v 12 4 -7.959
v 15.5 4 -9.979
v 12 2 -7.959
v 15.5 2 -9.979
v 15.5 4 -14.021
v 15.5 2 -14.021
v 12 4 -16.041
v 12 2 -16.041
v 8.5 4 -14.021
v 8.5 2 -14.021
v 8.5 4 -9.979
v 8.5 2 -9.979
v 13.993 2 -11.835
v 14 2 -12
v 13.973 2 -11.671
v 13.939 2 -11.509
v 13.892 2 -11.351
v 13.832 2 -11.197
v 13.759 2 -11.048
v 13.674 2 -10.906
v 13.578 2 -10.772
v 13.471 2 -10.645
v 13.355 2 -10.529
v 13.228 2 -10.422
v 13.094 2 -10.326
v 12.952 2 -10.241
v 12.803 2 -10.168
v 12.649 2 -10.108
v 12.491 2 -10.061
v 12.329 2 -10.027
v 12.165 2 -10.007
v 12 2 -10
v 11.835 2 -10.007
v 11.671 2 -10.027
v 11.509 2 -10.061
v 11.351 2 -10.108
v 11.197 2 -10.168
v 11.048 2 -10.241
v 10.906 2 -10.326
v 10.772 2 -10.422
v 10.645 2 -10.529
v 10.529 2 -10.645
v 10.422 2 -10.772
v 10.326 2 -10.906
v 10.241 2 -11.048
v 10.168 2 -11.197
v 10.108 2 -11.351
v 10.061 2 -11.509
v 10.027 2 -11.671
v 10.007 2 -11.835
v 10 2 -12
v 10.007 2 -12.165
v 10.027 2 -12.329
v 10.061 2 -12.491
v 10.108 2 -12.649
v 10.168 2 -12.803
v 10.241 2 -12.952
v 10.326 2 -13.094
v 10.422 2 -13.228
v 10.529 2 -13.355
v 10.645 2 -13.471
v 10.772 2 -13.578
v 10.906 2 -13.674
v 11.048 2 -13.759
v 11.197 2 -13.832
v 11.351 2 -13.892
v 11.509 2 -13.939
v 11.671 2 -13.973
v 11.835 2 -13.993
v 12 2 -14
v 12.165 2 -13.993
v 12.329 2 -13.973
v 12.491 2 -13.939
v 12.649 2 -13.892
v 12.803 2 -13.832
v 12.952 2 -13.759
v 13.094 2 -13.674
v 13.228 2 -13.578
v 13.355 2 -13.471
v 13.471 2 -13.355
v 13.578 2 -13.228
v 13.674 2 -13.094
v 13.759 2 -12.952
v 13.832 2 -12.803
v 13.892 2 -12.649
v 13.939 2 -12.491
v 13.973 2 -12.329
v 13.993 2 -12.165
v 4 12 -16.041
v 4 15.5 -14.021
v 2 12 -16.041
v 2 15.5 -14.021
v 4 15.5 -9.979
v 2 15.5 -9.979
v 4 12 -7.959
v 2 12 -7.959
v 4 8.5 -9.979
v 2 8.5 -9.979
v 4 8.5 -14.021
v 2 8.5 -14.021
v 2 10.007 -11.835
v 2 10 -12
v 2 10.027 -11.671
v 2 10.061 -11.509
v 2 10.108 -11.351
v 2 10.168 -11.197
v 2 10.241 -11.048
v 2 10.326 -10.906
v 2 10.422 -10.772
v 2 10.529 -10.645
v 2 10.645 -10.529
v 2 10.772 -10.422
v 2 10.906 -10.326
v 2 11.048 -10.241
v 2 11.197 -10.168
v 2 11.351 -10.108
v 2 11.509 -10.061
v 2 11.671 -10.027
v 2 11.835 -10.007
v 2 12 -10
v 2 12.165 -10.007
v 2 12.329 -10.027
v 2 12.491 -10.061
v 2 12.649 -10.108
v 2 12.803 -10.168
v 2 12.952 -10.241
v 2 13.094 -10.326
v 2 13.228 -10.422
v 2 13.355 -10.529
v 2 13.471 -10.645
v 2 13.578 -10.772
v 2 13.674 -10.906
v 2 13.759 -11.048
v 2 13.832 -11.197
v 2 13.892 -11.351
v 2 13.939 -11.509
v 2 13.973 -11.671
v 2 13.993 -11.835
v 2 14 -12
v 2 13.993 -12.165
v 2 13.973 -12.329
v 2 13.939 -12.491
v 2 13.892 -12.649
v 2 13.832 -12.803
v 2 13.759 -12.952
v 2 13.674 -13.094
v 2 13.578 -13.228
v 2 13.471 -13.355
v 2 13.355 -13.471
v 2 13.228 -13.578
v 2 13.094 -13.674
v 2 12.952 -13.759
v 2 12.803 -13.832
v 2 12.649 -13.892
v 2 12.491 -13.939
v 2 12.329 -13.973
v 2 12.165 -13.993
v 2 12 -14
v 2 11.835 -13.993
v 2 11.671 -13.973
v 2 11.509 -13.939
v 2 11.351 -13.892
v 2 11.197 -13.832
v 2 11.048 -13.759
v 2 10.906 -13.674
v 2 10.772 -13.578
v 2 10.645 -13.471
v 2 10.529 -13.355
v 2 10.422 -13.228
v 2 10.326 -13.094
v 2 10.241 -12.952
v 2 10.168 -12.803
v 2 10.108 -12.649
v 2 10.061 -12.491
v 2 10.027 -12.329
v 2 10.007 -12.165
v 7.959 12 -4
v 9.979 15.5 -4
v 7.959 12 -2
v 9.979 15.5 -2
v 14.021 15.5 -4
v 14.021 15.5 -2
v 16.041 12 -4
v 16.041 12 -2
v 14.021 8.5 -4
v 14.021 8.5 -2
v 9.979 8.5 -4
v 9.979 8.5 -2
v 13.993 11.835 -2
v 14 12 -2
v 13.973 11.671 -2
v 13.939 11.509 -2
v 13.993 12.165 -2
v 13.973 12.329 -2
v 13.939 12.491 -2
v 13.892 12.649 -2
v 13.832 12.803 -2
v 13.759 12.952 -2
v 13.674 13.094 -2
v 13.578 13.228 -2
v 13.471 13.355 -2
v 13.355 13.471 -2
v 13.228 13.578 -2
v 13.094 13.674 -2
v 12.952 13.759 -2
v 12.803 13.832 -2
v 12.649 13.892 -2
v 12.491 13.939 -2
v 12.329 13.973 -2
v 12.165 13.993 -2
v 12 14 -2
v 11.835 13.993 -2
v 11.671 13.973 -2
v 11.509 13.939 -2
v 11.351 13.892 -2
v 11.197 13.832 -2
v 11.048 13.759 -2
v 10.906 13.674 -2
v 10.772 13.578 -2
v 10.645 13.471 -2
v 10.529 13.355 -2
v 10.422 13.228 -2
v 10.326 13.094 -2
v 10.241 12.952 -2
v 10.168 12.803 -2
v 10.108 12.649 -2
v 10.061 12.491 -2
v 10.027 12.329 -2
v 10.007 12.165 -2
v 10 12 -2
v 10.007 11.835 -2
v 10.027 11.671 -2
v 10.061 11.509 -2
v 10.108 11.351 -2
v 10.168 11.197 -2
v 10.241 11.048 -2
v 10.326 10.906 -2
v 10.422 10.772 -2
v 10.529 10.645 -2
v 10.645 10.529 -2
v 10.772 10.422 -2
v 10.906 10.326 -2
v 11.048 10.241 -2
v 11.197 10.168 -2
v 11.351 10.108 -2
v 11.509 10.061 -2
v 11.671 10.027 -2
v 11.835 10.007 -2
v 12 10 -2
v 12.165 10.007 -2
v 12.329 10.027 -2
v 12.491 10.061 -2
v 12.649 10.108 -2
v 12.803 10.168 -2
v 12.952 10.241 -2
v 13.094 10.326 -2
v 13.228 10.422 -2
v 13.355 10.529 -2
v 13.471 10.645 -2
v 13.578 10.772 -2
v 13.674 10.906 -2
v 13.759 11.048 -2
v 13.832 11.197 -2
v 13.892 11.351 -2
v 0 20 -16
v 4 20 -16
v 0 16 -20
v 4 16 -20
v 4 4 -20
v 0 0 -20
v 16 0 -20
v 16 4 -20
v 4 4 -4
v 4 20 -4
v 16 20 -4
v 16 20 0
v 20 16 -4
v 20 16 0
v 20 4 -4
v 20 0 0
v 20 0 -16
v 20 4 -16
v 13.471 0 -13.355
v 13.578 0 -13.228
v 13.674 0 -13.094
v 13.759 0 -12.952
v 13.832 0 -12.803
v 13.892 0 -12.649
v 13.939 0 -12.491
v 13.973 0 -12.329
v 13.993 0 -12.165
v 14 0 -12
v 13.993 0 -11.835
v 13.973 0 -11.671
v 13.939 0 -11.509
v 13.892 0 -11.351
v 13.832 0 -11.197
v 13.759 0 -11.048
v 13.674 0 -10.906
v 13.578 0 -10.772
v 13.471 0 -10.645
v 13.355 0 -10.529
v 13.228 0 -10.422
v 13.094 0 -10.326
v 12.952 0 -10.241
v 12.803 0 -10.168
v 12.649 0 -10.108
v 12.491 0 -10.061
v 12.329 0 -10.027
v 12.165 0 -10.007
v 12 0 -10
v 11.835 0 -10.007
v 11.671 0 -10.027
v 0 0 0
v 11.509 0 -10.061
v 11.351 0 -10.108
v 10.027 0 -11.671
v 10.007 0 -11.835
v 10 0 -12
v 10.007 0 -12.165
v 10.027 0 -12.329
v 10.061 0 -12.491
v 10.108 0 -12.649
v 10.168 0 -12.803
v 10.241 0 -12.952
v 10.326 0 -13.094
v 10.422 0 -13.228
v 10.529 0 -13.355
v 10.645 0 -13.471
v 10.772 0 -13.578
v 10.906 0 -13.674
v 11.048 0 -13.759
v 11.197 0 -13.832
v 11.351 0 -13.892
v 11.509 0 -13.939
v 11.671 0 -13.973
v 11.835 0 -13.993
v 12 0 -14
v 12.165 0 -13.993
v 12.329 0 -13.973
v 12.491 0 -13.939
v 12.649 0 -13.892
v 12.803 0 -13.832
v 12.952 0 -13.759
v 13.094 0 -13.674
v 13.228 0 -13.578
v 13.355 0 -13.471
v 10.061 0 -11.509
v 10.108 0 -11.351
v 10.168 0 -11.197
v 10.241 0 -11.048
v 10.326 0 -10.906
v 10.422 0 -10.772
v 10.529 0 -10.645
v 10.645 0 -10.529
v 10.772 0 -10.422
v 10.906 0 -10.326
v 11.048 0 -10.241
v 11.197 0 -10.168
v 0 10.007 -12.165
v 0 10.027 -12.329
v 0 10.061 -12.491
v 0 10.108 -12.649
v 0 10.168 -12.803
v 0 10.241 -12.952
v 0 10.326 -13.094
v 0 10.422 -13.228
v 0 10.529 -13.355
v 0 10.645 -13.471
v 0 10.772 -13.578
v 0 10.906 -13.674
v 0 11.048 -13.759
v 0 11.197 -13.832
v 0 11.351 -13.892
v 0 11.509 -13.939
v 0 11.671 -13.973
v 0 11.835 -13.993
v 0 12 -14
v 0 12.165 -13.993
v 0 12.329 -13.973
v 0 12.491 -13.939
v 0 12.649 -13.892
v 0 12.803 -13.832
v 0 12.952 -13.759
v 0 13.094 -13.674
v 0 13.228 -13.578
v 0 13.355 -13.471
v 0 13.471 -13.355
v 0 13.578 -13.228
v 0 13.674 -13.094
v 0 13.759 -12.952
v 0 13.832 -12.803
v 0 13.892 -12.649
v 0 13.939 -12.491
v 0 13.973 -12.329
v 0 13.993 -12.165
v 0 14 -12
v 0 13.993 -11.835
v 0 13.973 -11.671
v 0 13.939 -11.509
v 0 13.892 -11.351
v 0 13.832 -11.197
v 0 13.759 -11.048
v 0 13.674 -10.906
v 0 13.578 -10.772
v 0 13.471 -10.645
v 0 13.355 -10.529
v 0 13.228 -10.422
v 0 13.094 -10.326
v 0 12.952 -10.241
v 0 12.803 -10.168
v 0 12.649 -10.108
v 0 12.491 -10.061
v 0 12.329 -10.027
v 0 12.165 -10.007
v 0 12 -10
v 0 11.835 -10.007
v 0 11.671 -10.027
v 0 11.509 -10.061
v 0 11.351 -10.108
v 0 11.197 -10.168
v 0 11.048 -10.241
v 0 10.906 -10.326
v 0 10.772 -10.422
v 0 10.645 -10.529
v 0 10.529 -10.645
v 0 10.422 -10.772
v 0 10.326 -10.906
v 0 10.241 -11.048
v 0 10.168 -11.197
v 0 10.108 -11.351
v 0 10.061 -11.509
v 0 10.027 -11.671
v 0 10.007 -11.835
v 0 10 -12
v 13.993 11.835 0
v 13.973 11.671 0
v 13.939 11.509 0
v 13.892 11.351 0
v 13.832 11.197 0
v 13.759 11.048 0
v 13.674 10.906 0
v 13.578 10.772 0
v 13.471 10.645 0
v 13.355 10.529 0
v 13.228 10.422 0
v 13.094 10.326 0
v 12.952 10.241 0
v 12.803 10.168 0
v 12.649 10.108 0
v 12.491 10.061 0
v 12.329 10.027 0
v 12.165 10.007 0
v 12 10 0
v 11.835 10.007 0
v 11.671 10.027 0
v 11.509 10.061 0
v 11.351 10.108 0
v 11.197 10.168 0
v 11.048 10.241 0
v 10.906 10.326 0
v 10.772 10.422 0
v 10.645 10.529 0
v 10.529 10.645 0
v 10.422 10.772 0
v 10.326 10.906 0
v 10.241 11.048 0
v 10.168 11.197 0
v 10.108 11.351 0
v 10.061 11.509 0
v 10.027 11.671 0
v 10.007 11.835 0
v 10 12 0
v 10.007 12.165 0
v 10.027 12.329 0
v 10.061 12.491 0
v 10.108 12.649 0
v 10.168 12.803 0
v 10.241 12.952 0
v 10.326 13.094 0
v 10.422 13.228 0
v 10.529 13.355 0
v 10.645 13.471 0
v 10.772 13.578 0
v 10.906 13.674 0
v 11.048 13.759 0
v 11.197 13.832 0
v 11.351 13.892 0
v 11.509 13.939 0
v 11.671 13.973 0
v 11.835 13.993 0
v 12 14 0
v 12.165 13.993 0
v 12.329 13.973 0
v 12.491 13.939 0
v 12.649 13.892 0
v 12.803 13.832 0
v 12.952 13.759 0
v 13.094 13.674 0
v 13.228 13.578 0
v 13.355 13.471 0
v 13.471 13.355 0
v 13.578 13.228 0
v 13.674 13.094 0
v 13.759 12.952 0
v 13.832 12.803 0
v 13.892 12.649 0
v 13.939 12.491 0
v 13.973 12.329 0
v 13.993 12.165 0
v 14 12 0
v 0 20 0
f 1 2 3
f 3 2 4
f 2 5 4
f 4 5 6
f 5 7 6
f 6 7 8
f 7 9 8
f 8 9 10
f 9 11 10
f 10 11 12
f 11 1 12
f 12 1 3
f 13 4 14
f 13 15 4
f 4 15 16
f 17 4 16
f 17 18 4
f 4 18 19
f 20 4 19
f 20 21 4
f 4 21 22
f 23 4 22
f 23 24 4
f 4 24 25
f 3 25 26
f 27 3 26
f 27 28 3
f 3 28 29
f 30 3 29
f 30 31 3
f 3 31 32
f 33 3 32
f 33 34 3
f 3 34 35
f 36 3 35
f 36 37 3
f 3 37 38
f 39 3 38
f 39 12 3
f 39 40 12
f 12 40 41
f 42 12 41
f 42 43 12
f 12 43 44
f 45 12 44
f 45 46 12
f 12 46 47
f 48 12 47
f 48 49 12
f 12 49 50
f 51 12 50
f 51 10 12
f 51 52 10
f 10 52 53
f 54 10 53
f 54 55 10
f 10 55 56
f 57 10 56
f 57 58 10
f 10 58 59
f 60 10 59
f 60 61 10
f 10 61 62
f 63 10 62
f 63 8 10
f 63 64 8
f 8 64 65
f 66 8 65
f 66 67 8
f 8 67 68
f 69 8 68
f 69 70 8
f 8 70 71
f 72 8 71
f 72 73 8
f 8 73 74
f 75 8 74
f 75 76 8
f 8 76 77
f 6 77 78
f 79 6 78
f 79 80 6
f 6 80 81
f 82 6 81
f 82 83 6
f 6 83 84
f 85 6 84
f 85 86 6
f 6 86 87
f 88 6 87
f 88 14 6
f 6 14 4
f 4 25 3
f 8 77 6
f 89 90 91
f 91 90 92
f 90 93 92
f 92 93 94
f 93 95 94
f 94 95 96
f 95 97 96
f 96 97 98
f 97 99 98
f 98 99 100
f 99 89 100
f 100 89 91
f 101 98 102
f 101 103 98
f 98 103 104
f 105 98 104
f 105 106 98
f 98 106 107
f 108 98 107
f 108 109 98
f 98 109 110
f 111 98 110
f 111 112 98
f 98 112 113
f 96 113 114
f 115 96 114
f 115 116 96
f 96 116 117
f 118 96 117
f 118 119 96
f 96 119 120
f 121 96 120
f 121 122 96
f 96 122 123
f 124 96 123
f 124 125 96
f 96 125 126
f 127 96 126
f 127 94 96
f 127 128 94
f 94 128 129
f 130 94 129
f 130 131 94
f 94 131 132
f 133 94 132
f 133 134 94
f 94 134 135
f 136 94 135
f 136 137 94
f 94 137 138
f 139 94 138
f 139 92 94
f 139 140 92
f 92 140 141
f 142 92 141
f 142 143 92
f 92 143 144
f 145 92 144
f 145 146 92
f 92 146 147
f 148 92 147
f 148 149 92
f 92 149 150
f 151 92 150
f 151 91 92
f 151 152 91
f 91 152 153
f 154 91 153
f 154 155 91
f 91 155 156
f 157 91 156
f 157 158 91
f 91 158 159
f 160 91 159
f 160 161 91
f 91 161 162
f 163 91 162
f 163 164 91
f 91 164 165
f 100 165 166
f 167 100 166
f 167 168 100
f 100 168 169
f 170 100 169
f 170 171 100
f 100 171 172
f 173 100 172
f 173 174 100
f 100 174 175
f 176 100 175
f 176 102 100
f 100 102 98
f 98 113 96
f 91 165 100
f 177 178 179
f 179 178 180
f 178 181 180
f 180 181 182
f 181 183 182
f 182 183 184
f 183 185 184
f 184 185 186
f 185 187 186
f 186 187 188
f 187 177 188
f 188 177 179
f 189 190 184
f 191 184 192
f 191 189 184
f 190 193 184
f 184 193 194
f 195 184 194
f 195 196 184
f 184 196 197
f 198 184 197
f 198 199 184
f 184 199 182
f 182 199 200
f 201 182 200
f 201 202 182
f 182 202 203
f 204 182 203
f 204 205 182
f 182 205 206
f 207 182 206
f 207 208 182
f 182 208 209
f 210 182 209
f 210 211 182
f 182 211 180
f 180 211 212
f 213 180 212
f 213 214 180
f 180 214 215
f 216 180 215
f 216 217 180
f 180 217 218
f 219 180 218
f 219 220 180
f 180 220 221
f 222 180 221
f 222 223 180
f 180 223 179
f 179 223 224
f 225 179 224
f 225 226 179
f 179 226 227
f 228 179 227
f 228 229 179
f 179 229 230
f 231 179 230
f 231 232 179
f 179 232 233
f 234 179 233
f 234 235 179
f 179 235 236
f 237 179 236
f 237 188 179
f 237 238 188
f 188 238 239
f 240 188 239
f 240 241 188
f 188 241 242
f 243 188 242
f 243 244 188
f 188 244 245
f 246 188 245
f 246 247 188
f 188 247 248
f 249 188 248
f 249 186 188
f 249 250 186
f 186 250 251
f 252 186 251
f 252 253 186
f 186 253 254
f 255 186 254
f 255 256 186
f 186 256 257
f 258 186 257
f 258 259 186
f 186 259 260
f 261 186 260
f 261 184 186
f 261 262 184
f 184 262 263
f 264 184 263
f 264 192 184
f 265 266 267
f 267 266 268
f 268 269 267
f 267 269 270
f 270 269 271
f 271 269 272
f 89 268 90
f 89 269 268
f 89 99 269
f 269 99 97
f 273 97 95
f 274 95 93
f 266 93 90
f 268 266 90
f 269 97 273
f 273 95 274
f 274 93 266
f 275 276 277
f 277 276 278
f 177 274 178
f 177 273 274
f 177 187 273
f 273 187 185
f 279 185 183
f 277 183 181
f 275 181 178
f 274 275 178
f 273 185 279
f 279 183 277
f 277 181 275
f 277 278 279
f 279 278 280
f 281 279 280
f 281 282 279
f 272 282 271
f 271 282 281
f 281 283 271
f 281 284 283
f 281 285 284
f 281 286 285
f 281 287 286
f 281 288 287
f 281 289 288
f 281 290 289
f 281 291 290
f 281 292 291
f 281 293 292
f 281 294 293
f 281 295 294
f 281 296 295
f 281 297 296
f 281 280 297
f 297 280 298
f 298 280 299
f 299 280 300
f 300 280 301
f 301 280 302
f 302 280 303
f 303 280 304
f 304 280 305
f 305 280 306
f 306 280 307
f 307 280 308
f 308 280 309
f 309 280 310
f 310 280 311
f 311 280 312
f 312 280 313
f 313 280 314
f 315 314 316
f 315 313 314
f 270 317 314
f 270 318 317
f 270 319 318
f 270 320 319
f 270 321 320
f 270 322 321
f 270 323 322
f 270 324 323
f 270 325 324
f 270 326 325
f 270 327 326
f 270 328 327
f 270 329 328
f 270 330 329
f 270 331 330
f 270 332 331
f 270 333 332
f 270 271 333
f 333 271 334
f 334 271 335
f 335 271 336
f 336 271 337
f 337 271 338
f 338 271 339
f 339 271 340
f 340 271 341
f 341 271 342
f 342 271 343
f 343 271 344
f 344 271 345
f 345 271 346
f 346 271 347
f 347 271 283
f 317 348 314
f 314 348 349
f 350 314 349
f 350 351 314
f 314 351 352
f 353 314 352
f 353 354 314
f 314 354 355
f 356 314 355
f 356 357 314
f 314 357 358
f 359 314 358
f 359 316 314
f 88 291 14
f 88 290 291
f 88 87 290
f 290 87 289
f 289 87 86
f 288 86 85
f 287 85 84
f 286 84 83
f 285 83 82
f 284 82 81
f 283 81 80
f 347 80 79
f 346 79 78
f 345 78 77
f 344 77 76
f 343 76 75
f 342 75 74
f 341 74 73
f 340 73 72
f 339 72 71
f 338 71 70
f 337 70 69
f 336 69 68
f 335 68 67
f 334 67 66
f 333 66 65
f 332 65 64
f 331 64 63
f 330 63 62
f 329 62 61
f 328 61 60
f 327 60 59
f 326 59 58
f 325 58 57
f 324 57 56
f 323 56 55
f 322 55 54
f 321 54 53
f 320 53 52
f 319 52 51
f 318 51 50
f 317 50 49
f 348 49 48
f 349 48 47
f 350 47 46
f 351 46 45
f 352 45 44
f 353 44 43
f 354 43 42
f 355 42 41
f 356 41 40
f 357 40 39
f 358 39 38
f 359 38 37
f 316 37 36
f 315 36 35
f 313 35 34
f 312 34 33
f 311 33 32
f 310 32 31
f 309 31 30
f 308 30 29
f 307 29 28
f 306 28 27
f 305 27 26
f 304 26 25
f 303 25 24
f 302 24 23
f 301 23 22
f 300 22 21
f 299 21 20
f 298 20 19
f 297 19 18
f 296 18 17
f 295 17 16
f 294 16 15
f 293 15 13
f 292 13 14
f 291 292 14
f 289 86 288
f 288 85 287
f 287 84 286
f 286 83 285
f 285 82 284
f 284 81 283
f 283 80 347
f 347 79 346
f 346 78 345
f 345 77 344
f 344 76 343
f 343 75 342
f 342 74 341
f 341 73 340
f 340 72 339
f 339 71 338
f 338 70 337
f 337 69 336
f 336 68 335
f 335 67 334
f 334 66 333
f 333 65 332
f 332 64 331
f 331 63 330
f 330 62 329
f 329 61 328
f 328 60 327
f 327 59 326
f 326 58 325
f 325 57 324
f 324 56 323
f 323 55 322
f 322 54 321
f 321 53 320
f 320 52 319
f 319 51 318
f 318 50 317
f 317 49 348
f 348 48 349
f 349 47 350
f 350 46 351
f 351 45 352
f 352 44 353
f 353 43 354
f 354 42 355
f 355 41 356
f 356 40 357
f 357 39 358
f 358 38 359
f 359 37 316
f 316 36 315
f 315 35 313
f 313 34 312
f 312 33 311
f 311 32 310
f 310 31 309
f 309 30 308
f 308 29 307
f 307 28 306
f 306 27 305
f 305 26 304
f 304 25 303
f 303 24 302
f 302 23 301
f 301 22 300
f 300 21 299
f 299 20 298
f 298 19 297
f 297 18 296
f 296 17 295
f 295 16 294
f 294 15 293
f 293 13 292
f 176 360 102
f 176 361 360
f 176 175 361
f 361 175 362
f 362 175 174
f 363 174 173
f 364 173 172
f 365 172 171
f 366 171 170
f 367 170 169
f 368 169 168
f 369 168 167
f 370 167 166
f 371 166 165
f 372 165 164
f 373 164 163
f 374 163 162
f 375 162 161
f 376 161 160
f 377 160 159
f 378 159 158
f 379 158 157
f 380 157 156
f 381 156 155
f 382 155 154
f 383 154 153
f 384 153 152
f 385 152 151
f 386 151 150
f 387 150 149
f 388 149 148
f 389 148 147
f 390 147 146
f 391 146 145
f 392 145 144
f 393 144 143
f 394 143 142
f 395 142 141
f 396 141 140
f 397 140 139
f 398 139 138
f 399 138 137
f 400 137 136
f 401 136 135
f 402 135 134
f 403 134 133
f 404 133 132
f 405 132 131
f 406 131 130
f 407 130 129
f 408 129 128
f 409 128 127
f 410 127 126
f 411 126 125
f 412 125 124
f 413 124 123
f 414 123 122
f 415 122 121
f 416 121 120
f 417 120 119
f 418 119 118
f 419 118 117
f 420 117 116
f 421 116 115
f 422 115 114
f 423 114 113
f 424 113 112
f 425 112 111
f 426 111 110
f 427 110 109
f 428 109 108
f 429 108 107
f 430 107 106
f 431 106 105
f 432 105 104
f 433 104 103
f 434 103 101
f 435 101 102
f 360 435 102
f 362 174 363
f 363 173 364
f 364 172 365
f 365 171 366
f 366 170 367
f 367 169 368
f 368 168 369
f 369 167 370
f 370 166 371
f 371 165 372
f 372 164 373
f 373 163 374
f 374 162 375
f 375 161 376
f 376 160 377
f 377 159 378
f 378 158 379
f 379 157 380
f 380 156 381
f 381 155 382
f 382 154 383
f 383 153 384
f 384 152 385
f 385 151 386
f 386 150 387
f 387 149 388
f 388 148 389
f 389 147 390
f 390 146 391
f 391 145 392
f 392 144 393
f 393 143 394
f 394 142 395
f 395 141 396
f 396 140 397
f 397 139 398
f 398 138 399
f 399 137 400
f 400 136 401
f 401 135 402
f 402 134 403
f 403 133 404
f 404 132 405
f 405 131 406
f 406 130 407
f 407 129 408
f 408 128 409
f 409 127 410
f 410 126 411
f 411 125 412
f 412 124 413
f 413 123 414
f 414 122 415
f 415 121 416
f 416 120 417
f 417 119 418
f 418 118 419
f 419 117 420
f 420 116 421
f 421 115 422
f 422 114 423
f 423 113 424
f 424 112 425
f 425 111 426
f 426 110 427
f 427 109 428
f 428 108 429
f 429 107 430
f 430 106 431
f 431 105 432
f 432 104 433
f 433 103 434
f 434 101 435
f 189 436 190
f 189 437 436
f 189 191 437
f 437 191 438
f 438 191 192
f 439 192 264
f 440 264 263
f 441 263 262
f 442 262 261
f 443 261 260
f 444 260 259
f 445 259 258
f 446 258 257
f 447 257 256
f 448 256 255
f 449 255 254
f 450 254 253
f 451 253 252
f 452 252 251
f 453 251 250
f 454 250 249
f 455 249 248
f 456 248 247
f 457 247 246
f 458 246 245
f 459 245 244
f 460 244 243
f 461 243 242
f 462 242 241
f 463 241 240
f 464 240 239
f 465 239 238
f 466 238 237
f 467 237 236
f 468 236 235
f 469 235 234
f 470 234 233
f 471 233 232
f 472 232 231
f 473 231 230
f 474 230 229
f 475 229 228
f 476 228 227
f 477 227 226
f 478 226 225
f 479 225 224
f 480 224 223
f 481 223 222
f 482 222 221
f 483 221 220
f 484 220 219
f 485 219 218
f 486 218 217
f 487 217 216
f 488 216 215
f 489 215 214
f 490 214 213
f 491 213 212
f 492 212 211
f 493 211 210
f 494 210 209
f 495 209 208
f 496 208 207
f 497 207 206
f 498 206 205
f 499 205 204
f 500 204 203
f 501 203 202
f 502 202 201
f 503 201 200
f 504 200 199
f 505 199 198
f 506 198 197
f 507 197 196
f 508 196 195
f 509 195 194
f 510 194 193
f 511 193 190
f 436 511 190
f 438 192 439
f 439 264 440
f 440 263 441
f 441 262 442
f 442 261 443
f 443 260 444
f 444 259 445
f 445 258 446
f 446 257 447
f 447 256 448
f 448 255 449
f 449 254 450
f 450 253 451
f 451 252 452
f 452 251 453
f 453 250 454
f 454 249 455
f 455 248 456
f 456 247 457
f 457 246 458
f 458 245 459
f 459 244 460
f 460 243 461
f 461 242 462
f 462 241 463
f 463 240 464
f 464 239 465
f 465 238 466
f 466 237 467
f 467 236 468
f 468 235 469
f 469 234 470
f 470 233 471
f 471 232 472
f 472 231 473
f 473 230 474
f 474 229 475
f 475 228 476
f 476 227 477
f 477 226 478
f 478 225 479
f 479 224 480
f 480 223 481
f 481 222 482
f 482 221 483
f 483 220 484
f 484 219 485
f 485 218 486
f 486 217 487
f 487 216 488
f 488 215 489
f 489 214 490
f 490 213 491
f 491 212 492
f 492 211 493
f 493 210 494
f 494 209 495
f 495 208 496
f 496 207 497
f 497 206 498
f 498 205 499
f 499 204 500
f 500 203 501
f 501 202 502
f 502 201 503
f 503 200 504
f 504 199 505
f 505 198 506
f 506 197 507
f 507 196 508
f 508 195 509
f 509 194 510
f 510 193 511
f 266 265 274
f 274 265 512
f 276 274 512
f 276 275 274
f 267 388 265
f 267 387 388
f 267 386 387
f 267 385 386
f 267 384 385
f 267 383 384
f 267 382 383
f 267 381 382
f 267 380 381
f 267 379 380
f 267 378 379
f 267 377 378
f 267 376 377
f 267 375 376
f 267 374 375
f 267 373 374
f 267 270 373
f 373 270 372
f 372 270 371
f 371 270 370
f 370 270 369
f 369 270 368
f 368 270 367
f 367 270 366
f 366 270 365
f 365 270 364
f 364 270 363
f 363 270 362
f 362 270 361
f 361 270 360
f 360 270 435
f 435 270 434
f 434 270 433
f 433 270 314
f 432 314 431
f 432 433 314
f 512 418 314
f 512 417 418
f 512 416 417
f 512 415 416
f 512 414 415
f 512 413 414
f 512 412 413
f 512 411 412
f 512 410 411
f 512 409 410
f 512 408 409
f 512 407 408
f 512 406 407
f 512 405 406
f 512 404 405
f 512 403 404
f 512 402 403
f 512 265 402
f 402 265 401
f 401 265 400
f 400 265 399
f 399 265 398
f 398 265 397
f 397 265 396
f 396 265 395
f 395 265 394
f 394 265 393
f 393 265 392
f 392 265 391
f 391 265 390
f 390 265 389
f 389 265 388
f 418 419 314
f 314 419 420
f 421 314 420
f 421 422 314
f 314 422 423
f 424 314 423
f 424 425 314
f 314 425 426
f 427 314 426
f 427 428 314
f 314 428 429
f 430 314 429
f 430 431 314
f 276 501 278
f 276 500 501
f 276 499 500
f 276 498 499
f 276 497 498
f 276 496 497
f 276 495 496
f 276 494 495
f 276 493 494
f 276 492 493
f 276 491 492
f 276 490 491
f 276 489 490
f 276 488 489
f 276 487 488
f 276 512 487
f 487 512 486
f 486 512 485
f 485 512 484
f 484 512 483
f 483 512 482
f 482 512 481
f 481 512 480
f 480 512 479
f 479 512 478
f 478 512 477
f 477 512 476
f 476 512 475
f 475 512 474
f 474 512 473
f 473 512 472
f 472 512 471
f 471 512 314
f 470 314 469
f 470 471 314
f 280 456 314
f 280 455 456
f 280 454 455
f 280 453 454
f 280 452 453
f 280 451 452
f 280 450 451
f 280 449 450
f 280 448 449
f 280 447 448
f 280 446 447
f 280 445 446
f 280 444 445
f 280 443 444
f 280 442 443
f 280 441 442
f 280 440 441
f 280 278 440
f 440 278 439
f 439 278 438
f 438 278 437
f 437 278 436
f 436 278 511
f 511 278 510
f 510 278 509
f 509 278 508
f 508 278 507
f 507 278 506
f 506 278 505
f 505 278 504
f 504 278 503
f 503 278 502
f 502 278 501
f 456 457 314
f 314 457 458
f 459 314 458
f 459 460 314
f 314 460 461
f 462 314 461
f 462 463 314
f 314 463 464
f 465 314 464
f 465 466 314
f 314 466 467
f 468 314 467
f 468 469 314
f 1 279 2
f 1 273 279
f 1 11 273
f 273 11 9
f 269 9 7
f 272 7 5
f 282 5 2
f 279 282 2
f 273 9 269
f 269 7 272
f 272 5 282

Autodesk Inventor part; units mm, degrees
ref_plane "YZ Plane" through (0, 0, 0) normal (1, 0, 0) x (0, 1, 0)
ref_plane "XZ Plane" through (0, 0, 0) normal (0, 1, 0) x (-1, 0, 0)
ref_plane "XY Plane" through (0, 0, 0) normal (0, 0, 1) x (1, 0, 0)
sketch "Sketch1" plane through (0, 0, 0) normal (0, 1, 0) x (-1, 0, 0)
  line L0 (0, 0) -> (-20, 0)
  line L1 (-20, 0) -> (-20, -20)
  line L2 (-20, -20) -> (0, -20)
  line L3 (0, -20) -> (0, 0)
  dimension "d0" = 20
  dimension "d1" = 20
extrude "Extrusion1" add sketch "Sketch1" along normal blind 4
sketch "Sketch2" plane through (0, 4, 0) normal (0, 1, 0) x (1, 0, 0)
  line L0 (0, 0) -> (20, 0)
  line L1 (20, 0) -> (20, 4)
  line L2 (20, 4) -> (4, 4)
  line L3 (0, 4) -> (0, 0)
  line L4 (0, 0) -> (4, 0)
  line L5 (4, 20) -> (0, 20)
  line L6 (0, 20) -> (0, 0)
  line L7 (4, 4) -> (4, 20)
  line L8 (0, 0) -> (20, 0) projected
  line L9 (0, 0) -> (20, 0)
  line L10 (0, 20) -> (0, 0) projected
  line L11 (0, 0) -> (0, 20)
extrude "Extrusion2" add sketch "Sketch2" along normal blind 16
hole "Hole2" at (12, 12, -4) direction (0, 0, 1) diameter 4 end through all
hole "Hole3" at (4, 12, -12) direction (-1, 0, 0) diameter 4 end through all
hole "Hole4" at (12, 4, -12) direction (0, -1, 0) diameter 4 end through all
chamfer "Chamfer1" distance 4 angle 45 1 edges at (20, 2, -20)
chamfer "Chamfer2" distance 4 angle 45 1 edges at (20, 20, -2)
chamfer "Chamfer3" distance 4 angle 45 1 edges at (2, 20, -20)
sketch "Sketch3" plane through (20, 4, -4) normal (0, 0, -1) x (-1, 0, 0)
  line L0 (12.0415, 8) -> (10.0207, 4.5)
  line L1 (10.0207, 4.5) -> (5.9793, 4.5)
  line L2 (5.9793, 4.5) -> (3.9585, 8)
  line L3 (3.9585, 8) -> (5.9793, 11.5)
  line L4 (5.9793, 11.5) -> (10.0207, 11.5)
  line L5 (10.0207, 11.5) -> (12.0415, 8)
  point P0 (20, -4)
  point P1 (8, 8)
  dimension "d51" = 7
sketch "Sketch4" plane through (4, 4, -4) normal (1, 0, 0) x (0, 0, -1)
  line L0 (12.0415, 8) -> (10.0207, 4.5)
  line L1 (10.0207, 4.5) -> (5.9793, 4.5)
  line L2 (5.9793, 4.5) -> (3.9585, 8)
  line L3 (3.9585, 8) -> (5.9793, 11.5)
  line L4 (5.9793, 11.5) -> (10.0207, 11.5)
  line L5 (10.0207, 11.5) -> (12.0415, 8)
  point P0 (-4, -4)
  point P1 (8, 8)
  dimension "d52" = 7
sketch "Sketch5" plane through (0, 4, 0) normal (0, 1, 0) x (1, 0, 0)
  circle A0 centre (12, 12) radius 2 projected
  line L0 (12, 7.9585) -> (8.5, 9.9793)
  line L1 (8.5, 9.9793) -> (8.5, 14.0207)
  line L2 (8.5, 14.0207) -> (12, 16.0415)
  line L3 (12, 16.0415) -> (15.5, 14.0207)
  line L4 (15.5, 14.0207) -> (15.5, 9.9793)
  line L5 (15.5, 9.9793) -> (12, 7.9585)
  point P0 (0, 0)
  dimension "d53" = 7
extrude "Extrusion3" cut sketch "Sketch3" against normal blind 2
extrude "Extrusion4" cut sketch "Sketch4" against normal blind 2
extrude "Extrusion5" cut sketch "Sketch5" against normal blind 2
properties part number "Frame3WayBlock" material "PLA Orange"
